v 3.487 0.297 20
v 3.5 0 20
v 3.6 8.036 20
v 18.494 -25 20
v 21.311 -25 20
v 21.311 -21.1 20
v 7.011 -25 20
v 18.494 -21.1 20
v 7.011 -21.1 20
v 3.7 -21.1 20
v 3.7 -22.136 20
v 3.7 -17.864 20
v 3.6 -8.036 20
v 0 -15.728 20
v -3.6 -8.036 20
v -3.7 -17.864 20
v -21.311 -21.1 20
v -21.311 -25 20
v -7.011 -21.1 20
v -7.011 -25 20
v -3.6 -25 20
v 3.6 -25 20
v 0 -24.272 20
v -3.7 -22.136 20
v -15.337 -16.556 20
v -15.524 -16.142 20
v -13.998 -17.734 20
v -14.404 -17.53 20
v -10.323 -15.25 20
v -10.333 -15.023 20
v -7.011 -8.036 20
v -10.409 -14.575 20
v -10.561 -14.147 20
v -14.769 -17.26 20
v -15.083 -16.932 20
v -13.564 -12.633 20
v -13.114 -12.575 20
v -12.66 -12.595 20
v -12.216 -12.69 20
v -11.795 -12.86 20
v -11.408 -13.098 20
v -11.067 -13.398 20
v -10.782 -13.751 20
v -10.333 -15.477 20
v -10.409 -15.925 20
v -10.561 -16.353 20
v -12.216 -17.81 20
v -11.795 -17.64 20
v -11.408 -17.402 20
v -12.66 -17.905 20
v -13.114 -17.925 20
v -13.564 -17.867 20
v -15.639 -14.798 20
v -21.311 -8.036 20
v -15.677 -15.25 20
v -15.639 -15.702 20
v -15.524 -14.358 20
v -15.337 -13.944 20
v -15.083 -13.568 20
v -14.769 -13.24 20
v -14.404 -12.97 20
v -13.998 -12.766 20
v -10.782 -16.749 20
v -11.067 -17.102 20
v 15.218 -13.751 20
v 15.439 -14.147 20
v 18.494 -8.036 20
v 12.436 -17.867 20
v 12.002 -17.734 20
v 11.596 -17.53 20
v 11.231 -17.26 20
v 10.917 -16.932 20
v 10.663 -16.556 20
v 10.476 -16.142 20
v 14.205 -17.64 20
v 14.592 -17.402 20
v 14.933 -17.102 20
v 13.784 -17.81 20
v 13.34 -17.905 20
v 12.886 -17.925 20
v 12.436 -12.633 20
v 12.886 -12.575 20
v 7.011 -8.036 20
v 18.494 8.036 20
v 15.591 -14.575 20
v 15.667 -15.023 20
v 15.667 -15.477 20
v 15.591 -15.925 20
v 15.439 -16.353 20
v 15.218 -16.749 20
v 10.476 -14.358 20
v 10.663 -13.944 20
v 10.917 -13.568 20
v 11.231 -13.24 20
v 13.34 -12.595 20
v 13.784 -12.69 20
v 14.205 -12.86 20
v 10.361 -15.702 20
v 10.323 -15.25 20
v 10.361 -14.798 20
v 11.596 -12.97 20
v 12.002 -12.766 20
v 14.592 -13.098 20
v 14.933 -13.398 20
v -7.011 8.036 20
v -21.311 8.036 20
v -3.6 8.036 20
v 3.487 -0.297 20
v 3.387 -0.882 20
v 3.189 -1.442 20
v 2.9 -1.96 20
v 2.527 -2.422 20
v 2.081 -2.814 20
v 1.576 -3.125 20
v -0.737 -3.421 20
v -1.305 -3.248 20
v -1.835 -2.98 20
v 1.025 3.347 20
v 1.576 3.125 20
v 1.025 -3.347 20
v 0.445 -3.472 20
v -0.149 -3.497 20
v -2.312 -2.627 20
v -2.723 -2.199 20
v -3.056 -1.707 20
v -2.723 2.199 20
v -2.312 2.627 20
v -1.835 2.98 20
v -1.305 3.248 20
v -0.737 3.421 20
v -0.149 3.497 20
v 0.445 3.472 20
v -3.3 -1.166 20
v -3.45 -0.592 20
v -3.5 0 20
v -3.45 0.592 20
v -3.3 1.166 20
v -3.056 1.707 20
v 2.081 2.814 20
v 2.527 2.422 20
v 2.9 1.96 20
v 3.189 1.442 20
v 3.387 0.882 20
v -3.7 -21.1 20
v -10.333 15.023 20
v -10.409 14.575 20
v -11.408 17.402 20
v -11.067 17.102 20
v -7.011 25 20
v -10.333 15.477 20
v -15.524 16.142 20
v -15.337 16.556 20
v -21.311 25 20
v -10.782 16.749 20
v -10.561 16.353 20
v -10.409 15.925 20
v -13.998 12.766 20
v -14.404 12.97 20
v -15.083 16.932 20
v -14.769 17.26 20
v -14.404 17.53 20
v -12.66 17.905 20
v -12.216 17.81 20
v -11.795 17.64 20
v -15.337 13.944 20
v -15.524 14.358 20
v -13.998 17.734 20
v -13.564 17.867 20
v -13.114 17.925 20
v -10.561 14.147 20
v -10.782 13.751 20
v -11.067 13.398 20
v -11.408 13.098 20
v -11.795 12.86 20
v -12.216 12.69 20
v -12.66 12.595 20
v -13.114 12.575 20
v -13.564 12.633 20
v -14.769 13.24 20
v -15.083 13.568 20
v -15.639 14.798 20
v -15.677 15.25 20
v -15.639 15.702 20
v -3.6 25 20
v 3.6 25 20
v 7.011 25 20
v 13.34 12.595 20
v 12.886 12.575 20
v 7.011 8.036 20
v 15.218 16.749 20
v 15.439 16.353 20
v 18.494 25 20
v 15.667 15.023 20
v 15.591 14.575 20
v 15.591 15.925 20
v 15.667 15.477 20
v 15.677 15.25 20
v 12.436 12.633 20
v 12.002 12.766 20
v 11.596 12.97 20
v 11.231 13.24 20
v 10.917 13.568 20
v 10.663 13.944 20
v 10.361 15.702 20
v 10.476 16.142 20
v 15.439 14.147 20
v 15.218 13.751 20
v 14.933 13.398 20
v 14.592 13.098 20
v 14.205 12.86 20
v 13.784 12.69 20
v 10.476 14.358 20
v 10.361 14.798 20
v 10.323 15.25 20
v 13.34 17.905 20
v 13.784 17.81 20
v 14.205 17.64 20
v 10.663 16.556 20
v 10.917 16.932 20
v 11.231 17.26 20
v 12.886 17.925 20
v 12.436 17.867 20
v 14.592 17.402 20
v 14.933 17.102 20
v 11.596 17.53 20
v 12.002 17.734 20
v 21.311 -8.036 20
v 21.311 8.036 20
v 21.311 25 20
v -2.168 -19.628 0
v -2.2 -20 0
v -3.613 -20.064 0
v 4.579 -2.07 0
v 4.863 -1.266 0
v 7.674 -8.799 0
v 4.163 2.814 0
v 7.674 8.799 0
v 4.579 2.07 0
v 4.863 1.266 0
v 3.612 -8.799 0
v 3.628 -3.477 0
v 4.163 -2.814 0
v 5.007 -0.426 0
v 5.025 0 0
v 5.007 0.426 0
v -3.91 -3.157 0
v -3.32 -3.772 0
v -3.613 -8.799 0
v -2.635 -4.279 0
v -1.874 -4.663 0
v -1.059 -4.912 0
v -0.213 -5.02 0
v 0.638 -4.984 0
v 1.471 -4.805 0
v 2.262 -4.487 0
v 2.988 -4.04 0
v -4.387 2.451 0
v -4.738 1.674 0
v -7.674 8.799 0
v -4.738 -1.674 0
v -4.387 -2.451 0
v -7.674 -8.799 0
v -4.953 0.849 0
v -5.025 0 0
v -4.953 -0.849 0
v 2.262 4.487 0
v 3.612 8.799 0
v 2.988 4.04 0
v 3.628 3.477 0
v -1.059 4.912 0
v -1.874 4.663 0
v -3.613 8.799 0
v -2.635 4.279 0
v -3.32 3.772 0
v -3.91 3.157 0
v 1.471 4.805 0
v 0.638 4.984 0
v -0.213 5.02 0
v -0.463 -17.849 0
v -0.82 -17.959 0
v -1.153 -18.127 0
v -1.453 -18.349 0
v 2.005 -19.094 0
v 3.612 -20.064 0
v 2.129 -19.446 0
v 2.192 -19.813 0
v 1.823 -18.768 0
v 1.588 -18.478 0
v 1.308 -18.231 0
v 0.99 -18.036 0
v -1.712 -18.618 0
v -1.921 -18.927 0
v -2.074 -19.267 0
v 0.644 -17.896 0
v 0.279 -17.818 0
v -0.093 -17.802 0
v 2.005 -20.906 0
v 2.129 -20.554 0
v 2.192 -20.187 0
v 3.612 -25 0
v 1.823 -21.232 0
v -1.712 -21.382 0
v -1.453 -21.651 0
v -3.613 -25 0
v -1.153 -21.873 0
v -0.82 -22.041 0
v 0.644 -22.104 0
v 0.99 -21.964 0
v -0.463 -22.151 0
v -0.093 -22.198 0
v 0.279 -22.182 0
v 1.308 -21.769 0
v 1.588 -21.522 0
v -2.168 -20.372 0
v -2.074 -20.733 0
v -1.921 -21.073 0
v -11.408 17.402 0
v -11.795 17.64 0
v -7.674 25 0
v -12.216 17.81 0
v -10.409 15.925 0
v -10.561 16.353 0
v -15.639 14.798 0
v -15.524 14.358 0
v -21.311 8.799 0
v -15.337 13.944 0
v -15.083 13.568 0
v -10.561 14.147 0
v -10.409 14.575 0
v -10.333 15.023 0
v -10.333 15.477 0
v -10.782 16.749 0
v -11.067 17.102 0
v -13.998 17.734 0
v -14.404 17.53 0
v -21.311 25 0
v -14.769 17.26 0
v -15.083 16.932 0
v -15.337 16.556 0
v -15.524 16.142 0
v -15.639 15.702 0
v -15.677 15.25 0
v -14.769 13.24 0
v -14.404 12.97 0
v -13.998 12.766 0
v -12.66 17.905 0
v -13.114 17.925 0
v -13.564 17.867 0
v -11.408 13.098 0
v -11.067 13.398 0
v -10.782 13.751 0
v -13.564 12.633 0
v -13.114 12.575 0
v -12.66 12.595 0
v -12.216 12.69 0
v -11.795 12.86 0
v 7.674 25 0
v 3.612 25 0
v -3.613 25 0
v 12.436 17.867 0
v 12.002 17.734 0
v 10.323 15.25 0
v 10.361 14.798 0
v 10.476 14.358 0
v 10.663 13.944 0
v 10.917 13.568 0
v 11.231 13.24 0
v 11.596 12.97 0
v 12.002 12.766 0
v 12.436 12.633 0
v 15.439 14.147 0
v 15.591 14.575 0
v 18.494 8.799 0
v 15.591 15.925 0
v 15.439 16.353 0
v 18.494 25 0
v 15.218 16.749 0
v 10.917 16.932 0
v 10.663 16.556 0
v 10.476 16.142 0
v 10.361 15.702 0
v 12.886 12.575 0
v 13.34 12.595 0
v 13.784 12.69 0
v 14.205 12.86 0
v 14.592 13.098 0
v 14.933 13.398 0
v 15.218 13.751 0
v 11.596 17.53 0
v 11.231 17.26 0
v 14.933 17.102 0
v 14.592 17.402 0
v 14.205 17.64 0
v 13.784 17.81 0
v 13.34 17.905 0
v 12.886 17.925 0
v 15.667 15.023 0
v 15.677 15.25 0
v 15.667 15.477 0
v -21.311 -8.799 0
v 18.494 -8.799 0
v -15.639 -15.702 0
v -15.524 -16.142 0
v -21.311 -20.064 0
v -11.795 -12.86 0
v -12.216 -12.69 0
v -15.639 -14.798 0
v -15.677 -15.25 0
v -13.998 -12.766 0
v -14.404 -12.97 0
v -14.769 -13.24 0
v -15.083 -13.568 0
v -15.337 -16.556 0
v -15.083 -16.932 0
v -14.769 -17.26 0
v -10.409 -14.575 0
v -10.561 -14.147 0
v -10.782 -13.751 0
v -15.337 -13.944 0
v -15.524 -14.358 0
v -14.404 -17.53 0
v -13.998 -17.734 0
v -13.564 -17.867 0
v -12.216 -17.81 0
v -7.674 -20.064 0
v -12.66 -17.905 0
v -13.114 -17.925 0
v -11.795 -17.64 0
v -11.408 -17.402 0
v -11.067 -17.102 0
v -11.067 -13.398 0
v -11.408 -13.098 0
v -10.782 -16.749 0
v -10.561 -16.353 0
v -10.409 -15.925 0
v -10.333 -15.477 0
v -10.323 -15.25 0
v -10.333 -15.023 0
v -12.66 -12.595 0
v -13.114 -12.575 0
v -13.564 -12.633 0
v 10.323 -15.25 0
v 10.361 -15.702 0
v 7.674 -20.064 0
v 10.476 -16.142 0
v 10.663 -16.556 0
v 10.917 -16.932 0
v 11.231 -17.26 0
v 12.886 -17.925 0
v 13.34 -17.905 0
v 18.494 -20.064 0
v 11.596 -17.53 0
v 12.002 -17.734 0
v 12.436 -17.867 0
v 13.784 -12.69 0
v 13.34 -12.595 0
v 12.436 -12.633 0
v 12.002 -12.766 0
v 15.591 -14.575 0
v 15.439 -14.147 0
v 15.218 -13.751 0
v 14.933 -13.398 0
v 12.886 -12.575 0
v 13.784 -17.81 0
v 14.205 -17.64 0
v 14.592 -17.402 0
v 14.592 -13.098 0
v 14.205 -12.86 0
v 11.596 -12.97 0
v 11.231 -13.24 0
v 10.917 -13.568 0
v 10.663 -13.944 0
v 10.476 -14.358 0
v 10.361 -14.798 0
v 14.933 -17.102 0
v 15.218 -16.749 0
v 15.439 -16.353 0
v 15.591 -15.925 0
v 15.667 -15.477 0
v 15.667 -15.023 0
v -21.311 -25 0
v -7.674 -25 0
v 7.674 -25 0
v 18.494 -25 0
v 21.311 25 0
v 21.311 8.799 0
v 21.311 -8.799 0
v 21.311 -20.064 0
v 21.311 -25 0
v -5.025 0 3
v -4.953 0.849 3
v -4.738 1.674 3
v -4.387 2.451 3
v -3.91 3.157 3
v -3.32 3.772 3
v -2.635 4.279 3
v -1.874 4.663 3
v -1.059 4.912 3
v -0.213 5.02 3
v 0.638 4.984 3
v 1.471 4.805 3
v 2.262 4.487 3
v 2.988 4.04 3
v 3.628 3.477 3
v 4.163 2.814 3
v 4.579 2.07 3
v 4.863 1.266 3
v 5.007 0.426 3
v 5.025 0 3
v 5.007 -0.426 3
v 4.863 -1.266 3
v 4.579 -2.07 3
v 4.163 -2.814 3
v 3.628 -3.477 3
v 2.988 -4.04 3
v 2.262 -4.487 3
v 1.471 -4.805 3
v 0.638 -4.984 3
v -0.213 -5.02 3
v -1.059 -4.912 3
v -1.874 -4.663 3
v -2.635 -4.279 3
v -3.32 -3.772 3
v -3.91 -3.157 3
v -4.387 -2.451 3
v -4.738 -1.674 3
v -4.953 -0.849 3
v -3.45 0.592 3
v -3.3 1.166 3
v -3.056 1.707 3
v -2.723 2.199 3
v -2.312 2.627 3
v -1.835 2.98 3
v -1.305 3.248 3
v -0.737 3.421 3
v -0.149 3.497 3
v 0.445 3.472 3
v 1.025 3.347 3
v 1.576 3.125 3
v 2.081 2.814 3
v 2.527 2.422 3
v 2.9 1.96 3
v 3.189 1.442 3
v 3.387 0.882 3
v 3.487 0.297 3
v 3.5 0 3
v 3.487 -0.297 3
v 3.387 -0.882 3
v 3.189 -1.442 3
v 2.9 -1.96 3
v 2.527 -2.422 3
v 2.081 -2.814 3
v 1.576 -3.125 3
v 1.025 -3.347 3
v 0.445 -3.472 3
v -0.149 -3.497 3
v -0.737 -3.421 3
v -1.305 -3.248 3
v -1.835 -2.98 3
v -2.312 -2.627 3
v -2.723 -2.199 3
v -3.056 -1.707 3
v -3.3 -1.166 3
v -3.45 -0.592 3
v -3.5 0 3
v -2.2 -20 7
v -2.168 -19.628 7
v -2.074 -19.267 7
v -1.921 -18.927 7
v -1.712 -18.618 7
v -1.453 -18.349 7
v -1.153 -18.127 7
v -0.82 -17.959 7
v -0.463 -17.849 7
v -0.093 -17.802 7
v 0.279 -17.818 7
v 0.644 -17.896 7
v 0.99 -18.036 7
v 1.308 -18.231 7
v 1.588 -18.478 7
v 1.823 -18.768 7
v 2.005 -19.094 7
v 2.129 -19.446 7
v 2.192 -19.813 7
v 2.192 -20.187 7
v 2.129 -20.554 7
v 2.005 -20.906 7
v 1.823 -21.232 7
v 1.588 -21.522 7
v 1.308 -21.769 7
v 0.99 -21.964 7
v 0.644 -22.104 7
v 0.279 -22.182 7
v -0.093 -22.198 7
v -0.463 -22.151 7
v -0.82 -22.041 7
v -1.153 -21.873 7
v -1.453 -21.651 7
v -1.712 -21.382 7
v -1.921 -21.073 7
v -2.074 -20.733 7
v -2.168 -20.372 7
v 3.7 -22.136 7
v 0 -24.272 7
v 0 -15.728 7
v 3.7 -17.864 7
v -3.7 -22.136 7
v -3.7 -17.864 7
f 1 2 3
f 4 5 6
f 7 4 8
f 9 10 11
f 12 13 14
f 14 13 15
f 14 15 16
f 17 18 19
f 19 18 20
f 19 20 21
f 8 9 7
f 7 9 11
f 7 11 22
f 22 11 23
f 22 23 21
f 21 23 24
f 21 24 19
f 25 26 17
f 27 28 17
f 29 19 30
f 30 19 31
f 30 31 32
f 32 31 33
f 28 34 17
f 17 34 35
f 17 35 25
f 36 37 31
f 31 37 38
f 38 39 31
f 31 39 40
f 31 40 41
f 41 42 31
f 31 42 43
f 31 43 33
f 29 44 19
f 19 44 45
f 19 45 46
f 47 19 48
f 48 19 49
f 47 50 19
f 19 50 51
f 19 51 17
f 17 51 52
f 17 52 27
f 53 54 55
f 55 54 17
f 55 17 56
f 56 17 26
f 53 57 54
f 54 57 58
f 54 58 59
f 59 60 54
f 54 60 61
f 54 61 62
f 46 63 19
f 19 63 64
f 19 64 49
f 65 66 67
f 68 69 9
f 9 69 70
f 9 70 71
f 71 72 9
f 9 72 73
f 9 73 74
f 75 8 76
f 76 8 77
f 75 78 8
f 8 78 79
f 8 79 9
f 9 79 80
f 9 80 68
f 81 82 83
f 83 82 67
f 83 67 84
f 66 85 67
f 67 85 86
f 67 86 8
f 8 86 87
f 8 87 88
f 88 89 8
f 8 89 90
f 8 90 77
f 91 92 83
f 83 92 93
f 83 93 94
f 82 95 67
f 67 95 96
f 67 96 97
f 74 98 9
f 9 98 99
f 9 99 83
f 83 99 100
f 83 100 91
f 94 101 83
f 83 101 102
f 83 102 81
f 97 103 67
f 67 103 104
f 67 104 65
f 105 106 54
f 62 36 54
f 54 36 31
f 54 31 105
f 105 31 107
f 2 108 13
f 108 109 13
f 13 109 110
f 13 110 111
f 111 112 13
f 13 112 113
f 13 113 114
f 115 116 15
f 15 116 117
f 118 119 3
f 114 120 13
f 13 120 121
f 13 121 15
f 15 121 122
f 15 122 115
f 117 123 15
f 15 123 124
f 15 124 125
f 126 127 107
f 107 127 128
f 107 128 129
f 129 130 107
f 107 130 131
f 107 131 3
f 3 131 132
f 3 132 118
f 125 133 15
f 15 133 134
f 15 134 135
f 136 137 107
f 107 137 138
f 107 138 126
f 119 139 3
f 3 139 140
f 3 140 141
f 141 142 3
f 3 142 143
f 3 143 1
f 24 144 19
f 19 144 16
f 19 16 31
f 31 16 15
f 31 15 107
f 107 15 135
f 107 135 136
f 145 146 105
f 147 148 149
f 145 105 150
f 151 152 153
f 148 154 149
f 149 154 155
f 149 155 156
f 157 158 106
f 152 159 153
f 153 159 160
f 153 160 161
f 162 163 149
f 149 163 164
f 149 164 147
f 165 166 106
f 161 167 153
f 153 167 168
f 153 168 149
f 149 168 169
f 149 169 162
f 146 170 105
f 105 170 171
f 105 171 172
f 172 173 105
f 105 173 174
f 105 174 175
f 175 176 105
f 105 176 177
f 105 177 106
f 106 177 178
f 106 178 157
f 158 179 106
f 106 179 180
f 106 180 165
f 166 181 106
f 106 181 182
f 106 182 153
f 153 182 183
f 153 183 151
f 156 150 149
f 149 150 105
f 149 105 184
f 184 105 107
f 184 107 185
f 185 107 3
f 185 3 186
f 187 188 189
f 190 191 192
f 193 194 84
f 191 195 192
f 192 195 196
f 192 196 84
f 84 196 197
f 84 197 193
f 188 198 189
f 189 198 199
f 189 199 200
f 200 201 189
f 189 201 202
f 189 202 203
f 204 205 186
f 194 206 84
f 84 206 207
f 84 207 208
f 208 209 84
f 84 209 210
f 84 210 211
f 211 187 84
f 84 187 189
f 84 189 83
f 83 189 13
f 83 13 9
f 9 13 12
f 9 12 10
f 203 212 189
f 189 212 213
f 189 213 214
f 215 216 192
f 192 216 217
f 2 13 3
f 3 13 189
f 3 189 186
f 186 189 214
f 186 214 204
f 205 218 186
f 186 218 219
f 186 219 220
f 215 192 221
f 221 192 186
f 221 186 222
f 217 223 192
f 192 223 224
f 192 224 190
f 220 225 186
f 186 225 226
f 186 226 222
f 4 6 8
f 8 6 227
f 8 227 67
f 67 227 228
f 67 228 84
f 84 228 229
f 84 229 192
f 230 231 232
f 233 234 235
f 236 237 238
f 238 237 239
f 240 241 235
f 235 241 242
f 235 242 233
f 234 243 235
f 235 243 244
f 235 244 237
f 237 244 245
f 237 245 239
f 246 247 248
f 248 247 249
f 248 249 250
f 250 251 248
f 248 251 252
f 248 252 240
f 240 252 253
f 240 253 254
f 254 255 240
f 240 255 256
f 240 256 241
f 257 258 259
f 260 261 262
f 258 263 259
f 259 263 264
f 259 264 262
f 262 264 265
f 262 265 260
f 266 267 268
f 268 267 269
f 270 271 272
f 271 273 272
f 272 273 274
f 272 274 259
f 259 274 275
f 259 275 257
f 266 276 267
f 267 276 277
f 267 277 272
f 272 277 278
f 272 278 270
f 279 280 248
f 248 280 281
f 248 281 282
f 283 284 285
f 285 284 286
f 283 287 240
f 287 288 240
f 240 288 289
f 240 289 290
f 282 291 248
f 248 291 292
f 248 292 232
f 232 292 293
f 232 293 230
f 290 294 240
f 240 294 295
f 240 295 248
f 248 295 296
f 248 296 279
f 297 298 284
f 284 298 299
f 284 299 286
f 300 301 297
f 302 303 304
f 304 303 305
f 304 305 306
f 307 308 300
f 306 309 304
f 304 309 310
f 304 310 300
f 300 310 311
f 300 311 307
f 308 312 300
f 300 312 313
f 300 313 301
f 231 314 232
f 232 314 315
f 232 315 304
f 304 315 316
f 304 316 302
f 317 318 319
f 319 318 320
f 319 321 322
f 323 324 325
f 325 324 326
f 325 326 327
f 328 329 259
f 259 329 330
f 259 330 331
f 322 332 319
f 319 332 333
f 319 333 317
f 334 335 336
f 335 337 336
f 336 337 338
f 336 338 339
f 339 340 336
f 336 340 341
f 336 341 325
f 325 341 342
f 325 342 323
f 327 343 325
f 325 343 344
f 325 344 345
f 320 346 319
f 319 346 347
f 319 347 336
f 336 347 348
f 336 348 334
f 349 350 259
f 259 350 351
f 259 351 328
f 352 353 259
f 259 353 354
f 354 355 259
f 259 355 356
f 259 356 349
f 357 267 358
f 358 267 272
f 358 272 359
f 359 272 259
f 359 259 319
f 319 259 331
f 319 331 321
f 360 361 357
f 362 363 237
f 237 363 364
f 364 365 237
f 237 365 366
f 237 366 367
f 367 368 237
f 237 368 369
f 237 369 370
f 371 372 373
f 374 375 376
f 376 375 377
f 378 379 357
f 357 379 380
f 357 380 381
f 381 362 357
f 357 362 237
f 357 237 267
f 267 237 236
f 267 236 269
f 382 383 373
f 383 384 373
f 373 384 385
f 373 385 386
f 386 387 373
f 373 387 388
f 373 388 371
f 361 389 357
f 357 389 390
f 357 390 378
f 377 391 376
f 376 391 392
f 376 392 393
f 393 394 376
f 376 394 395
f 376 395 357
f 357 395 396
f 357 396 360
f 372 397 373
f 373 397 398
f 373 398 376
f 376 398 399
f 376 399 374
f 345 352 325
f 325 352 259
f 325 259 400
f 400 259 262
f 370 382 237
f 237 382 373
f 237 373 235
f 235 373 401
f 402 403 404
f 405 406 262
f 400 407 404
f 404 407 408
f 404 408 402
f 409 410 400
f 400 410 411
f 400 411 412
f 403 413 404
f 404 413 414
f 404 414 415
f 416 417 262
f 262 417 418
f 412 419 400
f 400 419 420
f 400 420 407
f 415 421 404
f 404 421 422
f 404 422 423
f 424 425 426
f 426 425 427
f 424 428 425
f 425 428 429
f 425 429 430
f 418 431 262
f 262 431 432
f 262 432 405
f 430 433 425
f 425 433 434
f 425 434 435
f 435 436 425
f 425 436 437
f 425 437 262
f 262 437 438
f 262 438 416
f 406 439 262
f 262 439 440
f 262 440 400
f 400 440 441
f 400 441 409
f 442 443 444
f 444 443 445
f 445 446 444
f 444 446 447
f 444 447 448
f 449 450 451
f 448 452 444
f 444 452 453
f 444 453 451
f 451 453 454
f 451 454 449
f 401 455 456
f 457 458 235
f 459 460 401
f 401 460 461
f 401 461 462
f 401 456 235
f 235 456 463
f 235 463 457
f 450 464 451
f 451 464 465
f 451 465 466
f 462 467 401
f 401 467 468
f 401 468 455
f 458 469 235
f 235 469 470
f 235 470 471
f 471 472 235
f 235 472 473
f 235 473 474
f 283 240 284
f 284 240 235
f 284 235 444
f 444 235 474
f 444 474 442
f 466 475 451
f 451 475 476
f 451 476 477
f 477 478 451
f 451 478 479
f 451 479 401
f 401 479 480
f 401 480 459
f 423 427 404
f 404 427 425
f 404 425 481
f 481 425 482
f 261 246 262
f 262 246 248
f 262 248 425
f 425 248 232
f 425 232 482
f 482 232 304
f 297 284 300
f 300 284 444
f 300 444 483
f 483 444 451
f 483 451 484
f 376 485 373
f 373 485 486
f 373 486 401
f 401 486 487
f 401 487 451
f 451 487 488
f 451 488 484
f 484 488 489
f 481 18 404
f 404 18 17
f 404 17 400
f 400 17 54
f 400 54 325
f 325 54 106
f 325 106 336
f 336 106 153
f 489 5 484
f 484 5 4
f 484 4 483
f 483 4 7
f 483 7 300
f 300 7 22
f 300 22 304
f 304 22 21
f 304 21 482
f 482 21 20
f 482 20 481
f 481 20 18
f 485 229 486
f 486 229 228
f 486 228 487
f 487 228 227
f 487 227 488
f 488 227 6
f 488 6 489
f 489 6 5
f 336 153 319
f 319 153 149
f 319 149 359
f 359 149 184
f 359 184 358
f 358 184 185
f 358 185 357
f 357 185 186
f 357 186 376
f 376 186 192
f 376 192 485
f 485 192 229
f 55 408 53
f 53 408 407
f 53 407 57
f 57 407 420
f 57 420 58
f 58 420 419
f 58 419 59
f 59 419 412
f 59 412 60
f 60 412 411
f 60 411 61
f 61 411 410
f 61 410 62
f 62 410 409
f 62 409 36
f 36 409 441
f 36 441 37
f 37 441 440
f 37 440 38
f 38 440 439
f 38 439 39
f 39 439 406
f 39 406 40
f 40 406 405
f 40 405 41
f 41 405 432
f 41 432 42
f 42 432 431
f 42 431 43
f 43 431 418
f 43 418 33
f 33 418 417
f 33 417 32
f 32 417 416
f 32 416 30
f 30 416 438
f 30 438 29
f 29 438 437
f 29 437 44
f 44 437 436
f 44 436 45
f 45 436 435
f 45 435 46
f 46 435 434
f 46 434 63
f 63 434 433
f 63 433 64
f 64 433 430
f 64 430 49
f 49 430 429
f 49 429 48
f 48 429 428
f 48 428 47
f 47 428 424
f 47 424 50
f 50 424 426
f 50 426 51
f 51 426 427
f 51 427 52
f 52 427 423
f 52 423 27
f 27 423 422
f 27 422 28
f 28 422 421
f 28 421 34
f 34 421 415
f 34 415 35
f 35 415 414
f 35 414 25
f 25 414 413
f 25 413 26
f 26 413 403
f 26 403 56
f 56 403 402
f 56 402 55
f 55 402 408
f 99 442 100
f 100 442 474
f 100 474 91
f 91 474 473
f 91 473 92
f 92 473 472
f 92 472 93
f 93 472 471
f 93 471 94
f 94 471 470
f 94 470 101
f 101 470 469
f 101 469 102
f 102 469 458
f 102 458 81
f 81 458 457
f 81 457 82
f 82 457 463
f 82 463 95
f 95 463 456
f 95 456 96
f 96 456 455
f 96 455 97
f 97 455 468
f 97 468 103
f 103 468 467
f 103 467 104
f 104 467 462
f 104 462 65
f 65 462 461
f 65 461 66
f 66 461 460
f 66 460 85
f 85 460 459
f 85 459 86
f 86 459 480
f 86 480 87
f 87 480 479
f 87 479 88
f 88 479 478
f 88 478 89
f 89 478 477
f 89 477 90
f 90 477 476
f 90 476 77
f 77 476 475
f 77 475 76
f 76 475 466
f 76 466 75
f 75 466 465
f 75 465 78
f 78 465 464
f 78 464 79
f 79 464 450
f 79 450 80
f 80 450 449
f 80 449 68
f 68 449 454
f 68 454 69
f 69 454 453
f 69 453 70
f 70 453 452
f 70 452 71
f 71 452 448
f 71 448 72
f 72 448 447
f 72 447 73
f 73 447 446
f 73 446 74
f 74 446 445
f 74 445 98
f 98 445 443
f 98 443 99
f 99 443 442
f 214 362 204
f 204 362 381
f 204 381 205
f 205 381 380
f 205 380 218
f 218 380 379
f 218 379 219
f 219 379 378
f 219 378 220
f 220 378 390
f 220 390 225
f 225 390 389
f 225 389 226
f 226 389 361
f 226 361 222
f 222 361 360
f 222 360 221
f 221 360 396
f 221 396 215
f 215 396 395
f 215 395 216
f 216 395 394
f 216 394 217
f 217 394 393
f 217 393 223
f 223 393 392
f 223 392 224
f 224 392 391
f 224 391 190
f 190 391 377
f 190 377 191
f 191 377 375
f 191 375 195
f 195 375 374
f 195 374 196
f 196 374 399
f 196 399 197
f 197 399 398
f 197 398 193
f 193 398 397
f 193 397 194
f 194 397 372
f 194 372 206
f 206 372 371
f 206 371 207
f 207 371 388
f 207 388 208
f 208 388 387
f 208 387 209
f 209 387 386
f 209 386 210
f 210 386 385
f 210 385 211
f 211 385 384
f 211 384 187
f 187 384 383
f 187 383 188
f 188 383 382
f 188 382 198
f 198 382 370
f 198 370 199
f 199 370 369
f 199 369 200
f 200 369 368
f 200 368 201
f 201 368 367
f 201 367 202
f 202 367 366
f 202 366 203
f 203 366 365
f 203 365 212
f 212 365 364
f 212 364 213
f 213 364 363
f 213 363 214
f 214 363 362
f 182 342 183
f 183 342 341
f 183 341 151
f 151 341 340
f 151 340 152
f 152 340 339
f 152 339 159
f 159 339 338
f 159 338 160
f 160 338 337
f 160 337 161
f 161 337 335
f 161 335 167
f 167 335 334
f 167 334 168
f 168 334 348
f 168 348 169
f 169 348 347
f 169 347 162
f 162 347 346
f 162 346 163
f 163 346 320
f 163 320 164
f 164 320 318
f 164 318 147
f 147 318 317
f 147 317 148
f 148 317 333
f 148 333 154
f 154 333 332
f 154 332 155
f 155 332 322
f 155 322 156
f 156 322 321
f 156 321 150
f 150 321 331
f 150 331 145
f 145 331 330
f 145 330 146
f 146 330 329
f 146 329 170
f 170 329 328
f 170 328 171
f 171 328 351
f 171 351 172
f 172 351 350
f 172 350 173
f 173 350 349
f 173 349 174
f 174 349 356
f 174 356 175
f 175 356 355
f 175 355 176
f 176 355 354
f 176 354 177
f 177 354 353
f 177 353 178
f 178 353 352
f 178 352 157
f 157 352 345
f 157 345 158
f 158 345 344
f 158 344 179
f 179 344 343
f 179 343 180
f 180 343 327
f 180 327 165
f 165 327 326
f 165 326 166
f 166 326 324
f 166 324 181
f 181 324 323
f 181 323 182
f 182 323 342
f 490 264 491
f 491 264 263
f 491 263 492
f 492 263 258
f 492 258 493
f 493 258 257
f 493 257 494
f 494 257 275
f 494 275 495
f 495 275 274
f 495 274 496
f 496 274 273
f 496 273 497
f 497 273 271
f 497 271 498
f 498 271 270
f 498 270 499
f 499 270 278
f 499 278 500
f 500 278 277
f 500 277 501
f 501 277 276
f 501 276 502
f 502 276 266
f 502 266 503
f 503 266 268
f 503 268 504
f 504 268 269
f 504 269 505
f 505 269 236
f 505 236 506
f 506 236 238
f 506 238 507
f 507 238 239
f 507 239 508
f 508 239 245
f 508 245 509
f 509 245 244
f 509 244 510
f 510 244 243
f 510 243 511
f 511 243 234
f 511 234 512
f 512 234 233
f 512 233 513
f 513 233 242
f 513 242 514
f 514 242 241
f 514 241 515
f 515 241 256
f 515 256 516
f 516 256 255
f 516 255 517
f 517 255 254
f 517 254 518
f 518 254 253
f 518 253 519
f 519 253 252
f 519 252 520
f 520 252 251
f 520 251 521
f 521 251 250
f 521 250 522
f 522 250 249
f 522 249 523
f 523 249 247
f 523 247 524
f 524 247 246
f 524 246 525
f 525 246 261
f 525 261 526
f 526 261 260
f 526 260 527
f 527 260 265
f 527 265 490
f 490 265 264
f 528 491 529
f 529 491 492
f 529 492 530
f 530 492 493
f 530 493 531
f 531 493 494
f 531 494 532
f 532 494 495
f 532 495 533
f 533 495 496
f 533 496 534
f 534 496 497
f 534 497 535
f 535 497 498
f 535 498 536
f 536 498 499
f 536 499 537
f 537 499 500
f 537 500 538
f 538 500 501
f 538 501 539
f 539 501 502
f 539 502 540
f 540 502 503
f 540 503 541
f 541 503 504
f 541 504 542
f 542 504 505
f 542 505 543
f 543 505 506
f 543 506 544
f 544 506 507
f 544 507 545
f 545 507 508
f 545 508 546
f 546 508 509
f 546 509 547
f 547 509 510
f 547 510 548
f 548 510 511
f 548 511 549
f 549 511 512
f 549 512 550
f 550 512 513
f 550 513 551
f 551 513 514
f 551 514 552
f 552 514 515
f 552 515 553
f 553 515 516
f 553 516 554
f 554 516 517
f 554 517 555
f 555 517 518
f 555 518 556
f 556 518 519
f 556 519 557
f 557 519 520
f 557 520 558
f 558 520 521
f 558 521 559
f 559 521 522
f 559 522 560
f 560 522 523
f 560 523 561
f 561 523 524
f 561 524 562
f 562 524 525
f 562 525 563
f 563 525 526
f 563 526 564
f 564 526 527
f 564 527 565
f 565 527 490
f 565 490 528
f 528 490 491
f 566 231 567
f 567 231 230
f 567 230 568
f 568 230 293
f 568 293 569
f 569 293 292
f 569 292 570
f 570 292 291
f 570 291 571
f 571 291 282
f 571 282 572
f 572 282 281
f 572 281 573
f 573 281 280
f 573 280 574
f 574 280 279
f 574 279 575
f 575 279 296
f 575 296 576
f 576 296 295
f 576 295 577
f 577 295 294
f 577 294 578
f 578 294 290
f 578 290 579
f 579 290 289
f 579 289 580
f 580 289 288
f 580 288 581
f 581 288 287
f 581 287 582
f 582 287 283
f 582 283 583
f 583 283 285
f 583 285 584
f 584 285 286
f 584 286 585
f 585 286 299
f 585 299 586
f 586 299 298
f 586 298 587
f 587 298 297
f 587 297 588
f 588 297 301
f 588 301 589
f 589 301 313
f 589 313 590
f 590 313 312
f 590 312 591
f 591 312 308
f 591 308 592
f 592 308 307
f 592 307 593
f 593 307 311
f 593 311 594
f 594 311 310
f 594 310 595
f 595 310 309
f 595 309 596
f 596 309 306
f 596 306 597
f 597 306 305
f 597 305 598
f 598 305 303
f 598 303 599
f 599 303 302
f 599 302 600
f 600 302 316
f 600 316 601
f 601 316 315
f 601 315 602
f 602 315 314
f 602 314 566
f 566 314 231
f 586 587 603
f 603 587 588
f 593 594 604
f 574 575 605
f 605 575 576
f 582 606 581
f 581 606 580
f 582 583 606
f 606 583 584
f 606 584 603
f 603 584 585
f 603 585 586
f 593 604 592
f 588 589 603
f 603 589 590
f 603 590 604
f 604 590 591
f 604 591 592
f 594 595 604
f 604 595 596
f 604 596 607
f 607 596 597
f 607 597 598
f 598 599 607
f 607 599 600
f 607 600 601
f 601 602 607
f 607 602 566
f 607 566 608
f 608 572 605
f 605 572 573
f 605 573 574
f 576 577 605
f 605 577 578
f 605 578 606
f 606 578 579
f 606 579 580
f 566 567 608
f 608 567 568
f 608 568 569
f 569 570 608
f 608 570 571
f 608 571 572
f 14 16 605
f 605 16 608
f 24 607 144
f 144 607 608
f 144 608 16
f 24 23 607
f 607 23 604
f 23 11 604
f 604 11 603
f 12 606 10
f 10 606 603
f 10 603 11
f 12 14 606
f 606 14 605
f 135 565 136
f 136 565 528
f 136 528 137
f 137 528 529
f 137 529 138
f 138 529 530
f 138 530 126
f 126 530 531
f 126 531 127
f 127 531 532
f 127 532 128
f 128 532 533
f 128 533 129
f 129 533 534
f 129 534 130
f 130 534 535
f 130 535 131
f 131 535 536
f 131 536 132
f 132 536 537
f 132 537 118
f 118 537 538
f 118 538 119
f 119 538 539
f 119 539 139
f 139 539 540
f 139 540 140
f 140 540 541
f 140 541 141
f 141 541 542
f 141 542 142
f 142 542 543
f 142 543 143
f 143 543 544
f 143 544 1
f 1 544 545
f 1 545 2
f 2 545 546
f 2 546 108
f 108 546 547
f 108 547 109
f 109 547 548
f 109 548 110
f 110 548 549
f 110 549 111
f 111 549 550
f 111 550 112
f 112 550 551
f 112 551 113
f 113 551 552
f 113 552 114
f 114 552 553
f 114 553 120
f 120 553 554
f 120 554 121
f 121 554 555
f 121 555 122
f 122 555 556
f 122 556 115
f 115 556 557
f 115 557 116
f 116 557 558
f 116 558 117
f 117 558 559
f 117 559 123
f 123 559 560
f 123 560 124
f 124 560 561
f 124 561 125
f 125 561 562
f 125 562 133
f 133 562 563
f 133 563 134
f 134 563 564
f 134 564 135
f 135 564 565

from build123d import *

# Parameters (mm, degrees)
SKETCH1_W           = 42.62295082
SKETCH1_H           = 50
SKETCH1_R           = 2.677018134
BOSS_EXTRUDE1_DEPTH = 20
SKETCH2_R           = 5.025
CUT_EXTRUDE2_DEPTH  = 3
SKETCH3_R           = 2.2
CUT_EXTRUDE3_DEPTH  = 10
CUT_EXTRUDE4_START  = -7
CUT_EXTRUDE4_DEPTH  = 32.460095998
SKETCH6_R           = 3.5
CUT_EXTRUDE5_DEPTH  = 39.460095998


with BuildPart() as part:
    # Sketch1 → Boss-Extrude1 (new body)
    with BuildSketch(Plane.XY):
        Rectangle(SKETCH1_W, SKETCH1_H)
        with Locations((-13, -15.25)):
            Circle(SKETCH1_R, mode=Mode.SUBTRACT)
        with Locations(Location((13, -15.25, 0), (0, 0, 180))):
            Circle(SKETCH1_R, mode=Mode.SUBTRACT)
        with Locations((13, 15.25)):
            Circle(SKETCH1_R, mode=Mode.SUBTRACT)
        with Locations(Location((-13, 15.25, 0), (0, 0, 180))):
            Circle(SKETCH1_R, mode=Mode.SUBTRACT)
    extrude(amount=BOSS_EXTRUDE1_DEPTH)

    # Sketch2 → Cut-Extrude2 (cut)
    with BuildSketch(Plane.XY):
        Circle(SKETCH2_R)
    extrude(amount=CUT_EXTRUDE2_DEPTH, mode=Mode.SUBTRACT)

    # Sketch3 → Cut-Extrude3 (cut)
    with BuildSketch(Plane(origin=(0, 0, 0), x_dir=(-1, 0, 0), z_dir=(0, 0, -1))):
        with Locations((0, -20)):
            Circle(SKETCH3_R)
    extrude(amount=-CUT_EXTRUDE3_DEPTH, mode=Mode.SUBTRACT)

    # Sketch5 → Cut-Extrude4 (cut, through all)
    with BuildSketch(Plane(origin=(0, 0, 0), x_dir=(-1, 0, 0), z_dir=(0, 0, -1)).offset(CUT_EXTRUDE4_START)):
        Polygon((0, -15.727608008), (-3.7, -17.863804004), (-3.7, -22.136195996), (0, -24.272391992), (3.7, -22.136195996), (3.7, -17.863804004), align=None)
    extrude(amount=-CUT_EXTRUDE4_DEPTH, mode=Mode.SUBTRACT)

    # Sketch6 → Cut-Extrude5 (cut, through all)
    with BuildSketch(Plane.XY):
        Circle(SKETCH6_R)
    extrude(amount=CUT_EXTRUDE5_DEPTH, mode=Mode.SUBTRACT)


solid = part.part
